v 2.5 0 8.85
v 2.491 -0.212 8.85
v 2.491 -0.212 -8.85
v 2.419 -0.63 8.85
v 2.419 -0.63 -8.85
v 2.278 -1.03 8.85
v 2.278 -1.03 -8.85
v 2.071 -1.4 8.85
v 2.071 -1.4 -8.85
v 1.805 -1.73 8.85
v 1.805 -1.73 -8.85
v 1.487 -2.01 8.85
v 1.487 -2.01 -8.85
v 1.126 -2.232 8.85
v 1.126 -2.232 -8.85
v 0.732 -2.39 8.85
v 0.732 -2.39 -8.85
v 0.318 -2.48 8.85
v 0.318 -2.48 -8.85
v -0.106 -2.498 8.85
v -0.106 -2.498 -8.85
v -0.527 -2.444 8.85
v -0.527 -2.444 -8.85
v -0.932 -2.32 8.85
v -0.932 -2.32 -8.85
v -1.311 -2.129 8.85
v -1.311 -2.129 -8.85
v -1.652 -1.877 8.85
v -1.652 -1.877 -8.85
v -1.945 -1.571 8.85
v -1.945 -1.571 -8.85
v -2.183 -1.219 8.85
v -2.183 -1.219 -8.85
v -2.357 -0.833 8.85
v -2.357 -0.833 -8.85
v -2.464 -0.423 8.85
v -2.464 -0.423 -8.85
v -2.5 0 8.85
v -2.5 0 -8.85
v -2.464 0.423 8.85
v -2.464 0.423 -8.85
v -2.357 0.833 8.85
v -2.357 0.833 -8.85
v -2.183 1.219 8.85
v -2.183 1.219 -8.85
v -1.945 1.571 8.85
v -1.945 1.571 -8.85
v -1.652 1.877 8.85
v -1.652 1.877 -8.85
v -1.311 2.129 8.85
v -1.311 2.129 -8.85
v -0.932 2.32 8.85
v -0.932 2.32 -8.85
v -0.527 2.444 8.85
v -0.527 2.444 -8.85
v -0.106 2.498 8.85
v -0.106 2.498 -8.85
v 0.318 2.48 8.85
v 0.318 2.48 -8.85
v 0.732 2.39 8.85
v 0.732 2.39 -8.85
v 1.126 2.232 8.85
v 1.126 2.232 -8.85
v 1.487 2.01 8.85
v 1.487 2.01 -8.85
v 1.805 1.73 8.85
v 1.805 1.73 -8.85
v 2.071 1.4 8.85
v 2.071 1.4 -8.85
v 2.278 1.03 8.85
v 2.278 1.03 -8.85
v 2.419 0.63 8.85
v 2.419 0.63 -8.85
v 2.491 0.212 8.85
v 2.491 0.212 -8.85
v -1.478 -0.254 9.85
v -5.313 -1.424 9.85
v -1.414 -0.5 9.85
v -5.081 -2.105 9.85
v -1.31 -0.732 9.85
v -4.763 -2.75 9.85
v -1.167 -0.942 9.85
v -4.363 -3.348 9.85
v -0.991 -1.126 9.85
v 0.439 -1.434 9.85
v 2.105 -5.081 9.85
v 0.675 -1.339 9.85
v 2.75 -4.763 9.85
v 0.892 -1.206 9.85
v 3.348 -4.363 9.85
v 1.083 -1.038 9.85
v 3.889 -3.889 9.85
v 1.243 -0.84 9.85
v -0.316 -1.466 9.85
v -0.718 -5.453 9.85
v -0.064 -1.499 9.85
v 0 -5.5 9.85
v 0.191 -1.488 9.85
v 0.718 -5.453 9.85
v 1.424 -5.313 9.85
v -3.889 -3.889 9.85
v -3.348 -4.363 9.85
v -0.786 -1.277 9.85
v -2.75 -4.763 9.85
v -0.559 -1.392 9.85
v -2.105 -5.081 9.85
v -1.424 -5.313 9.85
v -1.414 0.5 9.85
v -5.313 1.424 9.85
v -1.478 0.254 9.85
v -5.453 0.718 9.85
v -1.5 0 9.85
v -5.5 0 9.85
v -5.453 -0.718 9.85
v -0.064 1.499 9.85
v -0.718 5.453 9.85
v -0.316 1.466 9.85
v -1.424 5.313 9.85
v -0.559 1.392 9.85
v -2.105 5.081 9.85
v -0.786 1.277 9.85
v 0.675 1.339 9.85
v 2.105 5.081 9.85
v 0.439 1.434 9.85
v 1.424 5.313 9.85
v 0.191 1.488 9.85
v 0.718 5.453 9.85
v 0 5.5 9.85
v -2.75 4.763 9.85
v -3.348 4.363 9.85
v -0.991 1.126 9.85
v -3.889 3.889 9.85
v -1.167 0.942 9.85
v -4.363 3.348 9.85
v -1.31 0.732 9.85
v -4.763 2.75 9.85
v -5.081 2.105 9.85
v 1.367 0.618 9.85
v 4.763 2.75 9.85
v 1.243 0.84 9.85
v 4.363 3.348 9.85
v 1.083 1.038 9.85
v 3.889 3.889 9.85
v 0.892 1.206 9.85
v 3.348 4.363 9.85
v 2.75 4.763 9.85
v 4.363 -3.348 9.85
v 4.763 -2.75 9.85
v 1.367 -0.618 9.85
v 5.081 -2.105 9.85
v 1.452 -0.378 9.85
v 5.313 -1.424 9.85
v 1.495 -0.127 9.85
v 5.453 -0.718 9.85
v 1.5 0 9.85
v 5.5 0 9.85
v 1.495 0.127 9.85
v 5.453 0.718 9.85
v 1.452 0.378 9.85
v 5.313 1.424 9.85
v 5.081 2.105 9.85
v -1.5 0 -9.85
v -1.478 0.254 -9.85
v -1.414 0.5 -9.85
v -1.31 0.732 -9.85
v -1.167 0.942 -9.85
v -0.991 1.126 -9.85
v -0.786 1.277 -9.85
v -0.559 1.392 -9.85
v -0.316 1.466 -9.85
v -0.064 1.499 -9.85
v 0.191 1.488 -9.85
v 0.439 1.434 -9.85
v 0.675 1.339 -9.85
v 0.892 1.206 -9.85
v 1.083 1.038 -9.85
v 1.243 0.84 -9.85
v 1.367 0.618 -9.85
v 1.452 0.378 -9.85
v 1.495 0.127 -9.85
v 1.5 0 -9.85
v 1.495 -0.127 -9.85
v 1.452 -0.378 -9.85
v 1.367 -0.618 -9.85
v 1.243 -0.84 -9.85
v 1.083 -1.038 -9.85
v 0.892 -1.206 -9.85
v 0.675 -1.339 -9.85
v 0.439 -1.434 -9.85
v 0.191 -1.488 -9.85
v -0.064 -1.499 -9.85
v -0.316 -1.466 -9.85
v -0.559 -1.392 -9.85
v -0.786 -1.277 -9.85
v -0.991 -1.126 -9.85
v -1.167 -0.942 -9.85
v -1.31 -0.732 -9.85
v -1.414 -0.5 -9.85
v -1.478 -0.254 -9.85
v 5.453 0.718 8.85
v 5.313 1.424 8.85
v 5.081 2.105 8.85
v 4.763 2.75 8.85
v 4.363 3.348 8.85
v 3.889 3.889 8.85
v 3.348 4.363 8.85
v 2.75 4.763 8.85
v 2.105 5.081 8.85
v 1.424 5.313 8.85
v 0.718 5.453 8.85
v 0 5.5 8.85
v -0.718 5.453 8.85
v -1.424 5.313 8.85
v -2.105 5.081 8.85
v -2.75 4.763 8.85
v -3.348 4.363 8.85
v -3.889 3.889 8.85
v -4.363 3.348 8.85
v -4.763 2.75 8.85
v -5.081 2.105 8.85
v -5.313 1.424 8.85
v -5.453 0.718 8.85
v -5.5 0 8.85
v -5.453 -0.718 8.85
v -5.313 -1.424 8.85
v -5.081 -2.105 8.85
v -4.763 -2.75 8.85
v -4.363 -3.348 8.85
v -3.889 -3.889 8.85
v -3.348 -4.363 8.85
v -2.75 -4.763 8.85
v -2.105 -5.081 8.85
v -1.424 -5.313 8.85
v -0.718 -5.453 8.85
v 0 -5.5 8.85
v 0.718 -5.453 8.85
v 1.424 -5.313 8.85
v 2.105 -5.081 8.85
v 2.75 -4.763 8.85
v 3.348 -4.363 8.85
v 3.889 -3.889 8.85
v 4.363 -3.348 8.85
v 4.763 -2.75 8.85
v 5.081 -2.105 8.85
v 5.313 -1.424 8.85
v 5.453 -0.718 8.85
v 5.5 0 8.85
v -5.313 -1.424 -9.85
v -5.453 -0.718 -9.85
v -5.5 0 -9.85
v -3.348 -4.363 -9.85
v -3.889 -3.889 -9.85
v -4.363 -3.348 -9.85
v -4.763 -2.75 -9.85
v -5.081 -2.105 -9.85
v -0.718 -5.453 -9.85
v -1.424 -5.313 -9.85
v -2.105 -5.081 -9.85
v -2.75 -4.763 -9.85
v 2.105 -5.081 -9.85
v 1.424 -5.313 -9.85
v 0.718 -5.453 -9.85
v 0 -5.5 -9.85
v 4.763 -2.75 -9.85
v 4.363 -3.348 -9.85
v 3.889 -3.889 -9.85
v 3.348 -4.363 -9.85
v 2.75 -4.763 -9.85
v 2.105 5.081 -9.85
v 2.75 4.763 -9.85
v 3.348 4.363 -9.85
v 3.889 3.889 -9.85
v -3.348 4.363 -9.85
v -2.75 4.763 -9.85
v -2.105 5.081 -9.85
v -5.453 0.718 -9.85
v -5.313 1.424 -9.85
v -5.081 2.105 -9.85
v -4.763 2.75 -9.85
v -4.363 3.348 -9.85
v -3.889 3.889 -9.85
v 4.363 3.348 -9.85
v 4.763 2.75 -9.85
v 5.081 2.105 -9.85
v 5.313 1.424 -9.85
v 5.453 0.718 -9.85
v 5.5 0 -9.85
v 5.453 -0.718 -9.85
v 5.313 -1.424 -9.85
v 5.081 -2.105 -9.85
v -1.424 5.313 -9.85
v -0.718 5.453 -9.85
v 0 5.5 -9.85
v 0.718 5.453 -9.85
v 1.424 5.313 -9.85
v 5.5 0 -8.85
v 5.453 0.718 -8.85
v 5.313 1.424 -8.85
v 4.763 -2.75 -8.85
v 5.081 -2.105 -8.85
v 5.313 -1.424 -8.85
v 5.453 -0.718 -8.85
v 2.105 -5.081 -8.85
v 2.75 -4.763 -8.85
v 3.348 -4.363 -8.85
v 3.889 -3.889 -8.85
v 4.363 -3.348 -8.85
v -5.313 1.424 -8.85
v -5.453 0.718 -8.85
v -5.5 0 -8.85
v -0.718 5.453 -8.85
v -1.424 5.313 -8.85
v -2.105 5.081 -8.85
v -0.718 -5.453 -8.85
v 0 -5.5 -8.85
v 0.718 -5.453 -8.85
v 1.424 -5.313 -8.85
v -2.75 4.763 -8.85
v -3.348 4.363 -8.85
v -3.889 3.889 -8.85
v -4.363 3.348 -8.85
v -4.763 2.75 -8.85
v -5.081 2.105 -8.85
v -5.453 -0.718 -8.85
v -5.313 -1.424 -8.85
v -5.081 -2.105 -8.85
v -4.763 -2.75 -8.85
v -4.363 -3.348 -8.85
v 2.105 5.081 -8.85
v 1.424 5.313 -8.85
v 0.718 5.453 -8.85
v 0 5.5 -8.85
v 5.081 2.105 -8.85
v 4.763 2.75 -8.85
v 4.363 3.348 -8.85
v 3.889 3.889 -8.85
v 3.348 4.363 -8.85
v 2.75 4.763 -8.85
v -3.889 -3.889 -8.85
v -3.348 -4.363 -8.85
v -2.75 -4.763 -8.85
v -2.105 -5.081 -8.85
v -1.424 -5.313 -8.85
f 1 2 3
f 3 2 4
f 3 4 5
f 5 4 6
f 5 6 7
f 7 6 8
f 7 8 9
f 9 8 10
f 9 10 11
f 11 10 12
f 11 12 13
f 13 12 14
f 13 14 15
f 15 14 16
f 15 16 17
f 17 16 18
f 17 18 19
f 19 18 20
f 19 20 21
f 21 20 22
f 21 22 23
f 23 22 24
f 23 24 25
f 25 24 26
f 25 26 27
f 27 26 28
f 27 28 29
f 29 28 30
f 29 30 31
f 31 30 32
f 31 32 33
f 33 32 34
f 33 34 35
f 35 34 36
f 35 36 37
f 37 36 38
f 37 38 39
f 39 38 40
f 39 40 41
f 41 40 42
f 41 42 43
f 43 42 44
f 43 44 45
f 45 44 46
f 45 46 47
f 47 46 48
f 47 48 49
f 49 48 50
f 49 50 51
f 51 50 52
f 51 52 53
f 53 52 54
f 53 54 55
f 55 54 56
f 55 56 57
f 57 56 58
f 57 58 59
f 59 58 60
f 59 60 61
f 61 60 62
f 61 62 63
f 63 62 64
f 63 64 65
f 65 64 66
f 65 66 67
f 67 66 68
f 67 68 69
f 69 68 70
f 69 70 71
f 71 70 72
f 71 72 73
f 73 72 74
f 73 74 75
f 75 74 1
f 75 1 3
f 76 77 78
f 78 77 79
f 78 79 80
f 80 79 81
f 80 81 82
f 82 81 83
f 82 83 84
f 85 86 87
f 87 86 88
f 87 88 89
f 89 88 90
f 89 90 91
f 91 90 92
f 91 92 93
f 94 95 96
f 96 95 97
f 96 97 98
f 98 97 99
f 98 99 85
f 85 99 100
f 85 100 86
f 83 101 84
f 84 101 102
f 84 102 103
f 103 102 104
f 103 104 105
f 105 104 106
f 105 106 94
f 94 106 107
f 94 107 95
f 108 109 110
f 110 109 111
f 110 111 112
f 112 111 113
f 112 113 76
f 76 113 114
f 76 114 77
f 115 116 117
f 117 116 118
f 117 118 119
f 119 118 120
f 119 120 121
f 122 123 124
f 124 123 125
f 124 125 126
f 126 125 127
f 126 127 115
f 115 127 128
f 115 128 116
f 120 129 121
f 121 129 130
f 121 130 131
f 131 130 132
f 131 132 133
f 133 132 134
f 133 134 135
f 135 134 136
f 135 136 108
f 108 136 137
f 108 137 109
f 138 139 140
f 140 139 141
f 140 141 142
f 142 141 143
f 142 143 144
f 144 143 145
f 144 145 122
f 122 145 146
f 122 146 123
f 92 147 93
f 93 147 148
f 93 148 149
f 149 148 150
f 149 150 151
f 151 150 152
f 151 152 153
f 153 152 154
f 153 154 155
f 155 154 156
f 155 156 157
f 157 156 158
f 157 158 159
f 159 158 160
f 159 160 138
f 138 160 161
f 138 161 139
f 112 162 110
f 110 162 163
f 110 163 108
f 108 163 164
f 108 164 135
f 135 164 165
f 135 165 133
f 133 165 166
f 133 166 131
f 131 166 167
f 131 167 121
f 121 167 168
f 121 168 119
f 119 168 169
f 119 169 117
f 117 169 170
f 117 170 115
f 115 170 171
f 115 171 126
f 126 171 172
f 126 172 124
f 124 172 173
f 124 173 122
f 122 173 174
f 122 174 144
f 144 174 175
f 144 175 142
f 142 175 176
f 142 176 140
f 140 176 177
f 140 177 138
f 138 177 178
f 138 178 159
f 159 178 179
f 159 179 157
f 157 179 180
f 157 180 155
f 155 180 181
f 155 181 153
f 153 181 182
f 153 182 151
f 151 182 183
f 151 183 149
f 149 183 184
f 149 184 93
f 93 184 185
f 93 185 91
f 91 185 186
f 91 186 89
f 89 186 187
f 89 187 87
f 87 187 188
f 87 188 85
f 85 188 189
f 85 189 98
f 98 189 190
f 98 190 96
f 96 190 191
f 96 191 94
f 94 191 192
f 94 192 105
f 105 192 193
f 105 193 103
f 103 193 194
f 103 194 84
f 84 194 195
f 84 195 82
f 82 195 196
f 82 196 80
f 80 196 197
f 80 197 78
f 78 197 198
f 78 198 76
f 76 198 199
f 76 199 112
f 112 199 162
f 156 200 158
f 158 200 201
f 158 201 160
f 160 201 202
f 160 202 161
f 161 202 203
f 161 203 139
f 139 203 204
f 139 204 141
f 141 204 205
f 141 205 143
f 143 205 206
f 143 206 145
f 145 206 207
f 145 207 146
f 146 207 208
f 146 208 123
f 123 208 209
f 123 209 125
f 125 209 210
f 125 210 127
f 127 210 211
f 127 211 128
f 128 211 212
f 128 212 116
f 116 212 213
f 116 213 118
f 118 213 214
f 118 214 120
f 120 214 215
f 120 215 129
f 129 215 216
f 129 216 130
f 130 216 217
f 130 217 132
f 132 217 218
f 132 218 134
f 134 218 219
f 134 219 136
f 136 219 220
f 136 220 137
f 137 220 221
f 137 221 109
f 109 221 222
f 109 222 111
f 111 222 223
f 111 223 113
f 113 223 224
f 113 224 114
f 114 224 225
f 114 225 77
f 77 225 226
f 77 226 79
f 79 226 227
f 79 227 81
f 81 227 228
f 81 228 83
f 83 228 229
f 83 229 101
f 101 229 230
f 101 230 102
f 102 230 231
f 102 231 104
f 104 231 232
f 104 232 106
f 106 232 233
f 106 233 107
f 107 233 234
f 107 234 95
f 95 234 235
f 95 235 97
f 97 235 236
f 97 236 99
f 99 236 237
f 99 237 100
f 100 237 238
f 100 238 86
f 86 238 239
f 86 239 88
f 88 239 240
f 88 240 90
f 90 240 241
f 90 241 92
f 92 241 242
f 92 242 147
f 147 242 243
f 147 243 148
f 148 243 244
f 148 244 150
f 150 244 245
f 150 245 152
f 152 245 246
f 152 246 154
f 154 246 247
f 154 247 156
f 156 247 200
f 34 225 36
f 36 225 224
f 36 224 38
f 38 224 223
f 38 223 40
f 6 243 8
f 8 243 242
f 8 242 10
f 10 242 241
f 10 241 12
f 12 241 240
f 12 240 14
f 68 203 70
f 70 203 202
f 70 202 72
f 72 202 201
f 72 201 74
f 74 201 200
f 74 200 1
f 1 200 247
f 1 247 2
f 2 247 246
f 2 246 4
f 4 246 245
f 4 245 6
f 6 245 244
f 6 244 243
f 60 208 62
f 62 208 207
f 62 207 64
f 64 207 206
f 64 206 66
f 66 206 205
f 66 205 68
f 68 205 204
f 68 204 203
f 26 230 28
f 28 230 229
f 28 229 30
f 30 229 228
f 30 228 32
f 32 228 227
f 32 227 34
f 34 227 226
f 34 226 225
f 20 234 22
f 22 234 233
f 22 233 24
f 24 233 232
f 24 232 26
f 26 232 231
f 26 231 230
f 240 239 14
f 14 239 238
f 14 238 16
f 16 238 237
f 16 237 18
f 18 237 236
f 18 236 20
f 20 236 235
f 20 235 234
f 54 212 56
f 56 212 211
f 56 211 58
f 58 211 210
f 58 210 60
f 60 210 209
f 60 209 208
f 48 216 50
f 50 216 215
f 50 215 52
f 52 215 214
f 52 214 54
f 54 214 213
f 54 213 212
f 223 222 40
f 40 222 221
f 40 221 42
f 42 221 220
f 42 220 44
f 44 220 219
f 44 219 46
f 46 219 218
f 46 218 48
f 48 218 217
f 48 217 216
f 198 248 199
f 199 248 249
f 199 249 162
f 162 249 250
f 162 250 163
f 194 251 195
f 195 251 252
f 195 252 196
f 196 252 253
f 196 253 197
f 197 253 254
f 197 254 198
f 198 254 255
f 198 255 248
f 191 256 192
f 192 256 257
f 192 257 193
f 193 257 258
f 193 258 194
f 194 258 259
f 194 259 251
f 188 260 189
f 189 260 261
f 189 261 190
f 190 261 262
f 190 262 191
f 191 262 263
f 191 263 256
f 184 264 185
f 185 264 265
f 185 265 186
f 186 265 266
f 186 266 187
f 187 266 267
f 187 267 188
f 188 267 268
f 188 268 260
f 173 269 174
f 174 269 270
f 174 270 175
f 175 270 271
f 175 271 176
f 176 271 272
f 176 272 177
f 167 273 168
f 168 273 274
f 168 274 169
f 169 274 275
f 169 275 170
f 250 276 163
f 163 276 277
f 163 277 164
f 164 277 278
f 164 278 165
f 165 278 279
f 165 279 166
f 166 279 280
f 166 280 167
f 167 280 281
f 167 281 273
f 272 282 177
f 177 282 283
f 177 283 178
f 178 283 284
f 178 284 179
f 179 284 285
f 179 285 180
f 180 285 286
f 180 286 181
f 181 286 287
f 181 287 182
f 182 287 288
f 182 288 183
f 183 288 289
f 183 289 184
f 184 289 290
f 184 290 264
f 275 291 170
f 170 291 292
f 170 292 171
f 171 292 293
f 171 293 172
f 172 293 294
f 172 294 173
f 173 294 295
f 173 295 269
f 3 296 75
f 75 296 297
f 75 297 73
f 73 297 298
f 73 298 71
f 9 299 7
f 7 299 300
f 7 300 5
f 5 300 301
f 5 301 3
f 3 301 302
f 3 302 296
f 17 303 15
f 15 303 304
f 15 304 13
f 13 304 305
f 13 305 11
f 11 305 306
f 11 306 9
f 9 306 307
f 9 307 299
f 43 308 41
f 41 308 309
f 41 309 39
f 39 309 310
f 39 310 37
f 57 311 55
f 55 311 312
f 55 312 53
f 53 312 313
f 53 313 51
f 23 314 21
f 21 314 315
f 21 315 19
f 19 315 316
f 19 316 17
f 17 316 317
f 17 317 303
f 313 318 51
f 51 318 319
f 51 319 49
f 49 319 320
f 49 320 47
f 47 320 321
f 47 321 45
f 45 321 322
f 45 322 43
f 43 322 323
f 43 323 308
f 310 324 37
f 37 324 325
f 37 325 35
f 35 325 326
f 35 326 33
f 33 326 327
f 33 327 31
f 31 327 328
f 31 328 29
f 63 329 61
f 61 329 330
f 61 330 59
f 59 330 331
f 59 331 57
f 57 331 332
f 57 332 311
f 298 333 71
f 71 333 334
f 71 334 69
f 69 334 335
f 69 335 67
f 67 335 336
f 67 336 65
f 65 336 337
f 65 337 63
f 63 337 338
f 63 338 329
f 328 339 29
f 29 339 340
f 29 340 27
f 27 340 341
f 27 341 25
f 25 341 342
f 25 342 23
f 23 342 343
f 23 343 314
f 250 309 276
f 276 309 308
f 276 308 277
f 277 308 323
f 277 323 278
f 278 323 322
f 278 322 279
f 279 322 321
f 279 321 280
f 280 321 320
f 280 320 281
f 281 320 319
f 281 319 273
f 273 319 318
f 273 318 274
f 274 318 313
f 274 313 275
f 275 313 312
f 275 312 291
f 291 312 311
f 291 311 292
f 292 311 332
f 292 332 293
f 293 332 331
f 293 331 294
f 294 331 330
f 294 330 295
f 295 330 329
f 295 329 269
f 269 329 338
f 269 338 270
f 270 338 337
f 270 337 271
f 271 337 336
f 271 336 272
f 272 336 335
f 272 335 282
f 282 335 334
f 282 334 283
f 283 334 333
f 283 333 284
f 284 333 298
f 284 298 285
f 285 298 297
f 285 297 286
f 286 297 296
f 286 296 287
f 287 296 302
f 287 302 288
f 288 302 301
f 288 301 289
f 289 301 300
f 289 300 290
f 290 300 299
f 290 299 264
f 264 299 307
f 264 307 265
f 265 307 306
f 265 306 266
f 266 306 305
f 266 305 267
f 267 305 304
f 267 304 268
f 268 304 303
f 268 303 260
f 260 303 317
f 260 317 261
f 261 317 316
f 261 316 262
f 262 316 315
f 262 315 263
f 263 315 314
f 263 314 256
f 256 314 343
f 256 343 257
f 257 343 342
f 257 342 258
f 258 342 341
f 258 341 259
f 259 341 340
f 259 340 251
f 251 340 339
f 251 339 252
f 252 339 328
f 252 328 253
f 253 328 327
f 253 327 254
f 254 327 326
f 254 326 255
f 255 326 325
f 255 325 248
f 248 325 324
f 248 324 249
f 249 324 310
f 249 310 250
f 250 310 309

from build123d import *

# Parameters (mm, degrees)
ESQUISSE1_R        = 2.5
ESQUISSE1_R_2      = 1.5
BOSS_EXTRU_1_DEPTH = 9.85
ESQUISSE2_R        = 5.5
ESQUISSE2_R_2      = 2.5
BOSS_EXTRU_2_DEPTH = 1


with BuildPart() as part:
    # Esquisse1 → Boss.-Extru.1 (new body)
    with BuildSketch(Plane.XY):
        Circle(ESQUISSE1_R)
        Circle(ESQUISSE1_R_2, mode=Mode.SUBTRACT)
    boss_extru_1 = extrude(amount=BOSS_EXTRU_1_DEPTH)

    # Esquisse2 → Boss.-Extru.2 (add)
    with BuildSketch(Plane.XY.offset(9.85)):
        Circle(ESQUISSE2_R)
        Circle(ESQUISSE2_R_2, mode=Mode.SUBTRACT)
    boss_extru_2 = extrude(amount=-BOSS_EXTRU_2_DEPTH)

    # Symétrie1: Boss.-Extru.1, Boss.-Extru.2 across plane
    add(boss_extru_1.mirror(Plane.XY))
    add(boss_extru_2.mirror(Plane.XY))


solid = part.part
